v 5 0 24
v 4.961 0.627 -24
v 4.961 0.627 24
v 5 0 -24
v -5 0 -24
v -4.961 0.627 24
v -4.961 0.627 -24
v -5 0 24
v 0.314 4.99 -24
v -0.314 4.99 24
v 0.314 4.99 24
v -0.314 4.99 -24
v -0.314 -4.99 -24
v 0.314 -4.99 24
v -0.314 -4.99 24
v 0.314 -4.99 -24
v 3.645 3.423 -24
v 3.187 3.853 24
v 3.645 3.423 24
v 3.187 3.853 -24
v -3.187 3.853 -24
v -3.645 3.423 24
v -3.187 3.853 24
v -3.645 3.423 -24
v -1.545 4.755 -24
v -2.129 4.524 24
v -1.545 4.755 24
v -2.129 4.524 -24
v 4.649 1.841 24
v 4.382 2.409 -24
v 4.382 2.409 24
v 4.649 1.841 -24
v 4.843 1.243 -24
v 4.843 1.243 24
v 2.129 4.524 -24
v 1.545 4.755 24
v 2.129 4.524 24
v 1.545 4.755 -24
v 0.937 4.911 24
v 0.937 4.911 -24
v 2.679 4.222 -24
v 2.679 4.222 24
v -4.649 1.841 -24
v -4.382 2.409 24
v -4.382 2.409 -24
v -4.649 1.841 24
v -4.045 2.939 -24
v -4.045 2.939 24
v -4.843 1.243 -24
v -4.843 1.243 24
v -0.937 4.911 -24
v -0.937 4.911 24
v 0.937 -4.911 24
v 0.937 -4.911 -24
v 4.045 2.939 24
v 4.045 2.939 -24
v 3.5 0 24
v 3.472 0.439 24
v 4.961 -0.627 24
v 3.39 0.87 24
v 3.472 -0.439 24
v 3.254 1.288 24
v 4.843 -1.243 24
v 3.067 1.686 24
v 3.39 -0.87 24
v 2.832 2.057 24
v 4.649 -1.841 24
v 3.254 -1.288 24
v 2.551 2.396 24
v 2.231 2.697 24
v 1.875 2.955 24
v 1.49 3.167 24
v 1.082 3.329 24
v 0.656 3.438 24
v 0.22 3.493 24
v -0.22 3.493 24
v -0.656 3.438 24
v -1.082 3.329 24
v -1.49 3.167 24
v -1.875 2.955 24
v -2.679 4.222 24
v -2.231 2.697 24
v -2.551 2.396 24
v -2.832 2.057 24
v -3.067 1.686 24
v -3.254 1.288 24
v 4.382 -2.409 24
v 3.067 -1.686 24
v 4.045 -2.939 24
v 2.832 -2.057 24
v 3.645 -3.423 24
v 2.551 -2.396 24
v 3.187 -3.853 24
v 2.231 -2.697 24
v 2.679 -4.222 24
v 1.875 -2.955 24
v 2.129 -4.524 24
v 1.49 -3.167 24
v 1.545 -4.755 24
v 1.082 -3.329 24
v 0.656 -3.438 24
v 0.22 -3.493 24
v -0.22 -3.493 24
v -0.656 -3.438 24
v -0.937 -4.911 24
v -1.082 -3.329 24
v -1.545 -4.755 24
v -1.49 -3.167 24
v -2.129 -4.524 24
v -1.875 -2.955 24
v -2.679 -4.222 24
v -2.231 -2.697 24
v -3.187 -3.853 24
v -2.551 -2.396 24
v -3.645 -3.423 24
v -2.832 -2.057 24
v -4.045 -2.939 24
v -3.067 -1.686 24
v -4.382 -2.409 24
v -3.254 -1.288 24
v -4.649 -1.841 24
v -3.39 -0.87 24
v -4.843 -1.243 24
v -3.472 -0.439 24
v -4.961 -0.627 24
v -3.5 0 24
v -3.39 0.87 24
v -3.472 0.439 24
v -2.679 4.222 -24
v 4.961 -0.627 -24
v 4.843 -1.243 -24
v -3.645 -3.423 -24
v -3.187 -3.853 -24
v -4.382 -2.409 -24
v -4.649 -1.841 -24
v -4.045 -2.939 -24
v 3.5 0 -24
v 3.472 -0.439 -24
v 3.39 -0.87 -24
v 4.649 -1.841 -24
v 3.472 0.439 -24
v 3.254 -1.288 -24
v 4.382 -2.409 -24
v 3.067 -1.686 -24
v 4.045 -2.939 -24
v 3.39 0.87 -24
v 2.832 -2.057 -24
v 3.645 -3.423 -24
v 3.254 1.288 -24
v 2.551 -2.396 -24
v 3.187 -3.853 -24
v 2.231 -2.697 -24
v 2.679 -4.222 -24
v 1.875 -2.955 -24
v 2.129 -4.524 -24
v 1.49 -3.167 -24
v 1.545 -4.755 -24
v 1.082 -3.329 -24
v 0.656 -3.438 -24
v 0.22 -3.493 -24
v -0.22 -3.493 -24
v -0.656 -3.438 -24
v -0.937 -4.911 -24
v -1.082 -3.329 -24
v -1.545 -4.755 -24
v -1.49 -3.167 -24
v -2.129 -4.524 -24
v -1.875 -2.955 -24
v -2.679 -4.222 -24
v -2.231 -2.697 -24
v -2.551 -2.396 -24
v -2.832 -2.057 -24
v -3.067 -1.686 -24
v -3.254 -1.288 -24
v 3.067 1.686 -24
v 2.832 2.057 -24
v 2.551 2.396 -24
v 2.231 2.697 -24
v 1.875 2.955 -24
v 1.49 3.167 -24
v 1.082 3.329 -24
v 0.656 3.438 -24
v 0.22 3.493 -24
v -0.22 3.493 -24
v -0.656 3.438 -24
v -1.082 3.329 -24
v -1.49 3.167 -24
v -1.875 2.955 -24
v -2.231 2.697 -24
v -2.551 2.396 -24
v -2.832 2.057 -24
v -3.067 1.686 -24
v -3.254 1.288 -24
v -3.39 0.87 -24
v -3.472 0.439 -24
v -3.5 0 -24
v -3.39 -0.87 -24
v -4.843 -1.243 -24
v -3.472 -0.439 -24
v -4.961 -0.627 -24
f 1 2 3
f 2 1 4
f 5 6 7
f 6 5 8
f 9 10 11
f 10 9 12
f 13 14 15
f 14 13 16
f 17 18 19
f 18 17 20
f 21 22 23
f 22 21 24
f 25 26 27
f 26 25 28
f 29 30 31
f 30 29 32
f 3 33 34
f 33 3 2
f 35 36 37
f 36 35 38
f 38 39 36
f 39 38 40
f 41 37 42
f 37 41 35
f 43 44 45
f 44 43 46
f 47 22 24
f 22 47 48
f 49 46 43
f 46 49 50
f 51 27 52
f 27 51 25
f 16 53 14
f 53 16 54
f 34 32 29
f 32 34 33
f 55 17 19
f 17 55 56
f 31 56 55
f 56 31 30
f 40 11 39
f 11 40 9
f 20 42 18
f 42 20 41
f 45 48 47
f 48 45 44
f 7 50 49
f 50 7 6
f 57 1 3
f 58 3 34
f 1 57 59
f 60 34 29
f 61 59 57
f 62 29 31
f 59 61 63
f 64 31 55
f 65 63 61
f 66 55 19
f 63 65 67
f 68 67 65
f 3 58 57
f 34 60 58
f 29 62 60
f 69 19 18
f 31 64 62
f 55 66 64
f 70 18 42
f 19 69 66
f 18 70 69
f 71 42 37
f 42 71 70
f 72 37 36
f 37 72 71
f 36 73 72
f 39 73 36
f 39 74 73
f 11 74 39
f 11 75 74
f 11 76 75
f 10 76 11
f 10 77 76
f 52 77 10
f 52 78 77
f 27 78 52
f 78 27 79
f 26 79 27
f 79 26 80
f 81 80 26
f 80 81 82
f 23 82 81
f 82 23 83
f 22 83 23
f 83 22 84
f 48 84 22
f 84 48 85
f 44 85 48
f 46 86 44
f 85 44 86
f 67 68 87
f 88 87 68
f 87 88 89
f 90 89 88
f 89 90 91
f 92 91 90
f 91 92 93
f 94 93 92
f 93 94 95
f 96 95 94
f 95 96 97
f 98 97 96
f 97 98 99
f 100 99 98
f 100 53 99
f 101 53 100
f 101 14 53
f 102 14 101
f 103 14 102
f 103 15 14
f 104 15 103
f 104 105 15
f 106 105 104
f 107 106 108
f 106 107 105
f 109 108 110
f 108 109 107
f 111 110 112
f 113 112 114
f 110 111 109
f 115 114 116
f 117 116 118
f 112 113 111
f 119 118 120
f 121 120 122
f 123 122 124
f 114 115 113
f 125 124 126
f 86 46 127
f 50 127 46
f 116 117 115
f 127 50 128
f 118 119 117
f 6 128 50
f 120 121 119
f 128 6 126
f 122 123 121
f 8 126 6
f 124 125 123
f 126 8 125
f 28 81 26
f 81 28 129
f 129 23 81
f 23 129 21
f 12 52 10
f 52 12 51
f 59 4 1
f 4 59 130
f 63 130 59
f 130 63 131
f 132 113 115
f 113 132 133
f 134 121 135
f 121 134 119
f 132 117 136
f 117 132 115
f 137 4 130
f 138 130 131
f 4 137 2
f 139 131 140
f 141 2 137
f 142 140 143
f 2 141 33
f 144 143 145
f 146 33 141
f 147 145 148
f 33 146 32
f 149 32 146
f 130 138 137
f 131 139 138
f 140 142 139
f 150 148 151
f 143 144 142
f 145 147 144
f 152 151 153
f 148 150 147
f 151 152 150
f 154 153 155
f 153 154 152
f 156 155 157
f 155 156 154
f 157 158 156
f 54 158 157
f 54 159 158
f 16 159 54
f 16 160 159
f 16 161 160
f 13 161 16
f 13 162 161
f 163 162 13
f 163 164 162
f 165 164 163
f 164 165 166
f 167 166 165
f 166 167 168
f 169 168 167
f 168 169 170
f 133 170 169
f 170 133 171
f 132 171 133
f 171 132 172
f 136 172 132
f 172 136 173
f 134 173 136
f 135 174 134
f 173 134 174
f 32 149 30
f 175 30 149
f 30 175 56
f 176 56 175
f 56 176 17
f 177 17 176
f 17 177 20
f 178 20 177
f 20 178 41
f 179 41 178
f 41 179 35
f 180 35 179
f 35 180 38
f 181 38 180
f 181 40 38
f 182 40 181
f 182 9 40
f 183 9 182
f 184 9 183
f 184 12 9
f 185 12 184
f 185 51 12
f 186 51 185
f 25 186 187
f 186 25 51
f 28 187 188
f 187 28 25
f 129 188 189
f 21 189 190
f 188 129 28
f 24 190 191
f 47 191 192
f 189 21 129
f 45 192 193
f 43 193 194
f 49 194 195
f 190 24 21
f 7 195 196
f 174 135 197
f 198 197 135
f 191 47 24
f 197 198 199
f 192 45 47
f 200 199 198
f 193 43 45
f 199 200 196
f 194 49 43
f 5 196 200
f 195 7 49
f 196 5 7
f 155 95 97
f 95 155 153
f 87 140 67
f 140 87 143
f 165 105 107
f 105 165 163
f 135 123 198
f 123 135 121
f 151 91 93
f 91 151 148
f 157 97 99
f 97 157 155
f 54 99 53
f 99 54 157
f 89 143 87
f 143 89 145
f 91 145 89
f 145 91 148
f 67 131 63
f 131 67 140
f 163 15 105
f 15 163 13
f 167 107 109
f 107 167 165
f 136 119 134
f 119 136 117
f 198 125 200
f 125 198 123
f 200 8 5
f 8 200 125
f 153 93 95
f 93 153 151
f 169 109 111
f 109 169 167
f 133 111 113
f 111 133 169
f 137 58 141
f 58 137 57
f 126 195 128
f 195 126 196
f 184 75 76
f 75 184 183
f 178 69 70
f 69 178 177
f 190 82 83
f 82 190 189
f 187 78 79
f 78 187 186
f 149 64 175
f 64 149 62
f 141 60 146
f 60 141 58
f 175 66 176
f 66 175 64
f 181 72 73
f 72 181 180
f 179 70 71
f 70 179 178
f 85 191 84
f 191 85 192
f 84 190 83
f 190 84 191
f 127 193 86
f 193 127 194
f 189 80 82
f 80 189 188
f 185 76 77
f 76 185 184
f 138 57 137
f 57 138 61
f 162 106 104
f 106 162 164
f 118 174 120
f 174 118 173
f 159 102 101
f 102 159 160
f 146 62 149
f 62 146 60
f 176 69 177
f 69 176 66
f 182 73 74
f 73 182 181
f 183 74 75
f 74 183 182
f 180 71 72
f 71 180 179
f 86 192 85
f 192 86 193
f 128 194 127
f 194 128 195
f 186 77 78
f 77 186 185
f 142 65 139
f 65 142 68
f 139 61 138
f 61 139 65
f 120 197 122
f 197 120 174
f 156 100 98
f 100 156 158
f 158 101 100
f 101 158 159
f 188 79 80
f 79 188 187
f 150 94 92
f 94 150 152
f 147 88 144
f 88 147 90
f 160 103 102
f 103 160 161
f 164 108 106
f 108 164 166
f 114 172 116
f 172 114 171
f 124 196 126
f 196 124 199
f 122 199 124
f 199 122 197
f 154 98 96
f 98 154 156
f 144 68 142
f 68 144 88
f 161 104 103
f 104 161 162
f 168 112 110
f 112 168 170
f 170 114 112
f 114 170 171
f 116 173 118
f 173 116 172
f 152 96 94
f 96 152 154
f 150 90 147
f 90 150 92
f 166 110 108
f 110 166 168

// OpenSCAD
$fn = 50;


difference() {
	union() {
		translate(v = [0, 0, -24.0000000000]) {
			cylinder(h = 48, r = 5.0000000000);
		}
	}
	union() {
		translate(v = [0, 0, -100.0000000000]) {
			cylinder(h = 200, r = 3.5000000000);
		}
	}
}
